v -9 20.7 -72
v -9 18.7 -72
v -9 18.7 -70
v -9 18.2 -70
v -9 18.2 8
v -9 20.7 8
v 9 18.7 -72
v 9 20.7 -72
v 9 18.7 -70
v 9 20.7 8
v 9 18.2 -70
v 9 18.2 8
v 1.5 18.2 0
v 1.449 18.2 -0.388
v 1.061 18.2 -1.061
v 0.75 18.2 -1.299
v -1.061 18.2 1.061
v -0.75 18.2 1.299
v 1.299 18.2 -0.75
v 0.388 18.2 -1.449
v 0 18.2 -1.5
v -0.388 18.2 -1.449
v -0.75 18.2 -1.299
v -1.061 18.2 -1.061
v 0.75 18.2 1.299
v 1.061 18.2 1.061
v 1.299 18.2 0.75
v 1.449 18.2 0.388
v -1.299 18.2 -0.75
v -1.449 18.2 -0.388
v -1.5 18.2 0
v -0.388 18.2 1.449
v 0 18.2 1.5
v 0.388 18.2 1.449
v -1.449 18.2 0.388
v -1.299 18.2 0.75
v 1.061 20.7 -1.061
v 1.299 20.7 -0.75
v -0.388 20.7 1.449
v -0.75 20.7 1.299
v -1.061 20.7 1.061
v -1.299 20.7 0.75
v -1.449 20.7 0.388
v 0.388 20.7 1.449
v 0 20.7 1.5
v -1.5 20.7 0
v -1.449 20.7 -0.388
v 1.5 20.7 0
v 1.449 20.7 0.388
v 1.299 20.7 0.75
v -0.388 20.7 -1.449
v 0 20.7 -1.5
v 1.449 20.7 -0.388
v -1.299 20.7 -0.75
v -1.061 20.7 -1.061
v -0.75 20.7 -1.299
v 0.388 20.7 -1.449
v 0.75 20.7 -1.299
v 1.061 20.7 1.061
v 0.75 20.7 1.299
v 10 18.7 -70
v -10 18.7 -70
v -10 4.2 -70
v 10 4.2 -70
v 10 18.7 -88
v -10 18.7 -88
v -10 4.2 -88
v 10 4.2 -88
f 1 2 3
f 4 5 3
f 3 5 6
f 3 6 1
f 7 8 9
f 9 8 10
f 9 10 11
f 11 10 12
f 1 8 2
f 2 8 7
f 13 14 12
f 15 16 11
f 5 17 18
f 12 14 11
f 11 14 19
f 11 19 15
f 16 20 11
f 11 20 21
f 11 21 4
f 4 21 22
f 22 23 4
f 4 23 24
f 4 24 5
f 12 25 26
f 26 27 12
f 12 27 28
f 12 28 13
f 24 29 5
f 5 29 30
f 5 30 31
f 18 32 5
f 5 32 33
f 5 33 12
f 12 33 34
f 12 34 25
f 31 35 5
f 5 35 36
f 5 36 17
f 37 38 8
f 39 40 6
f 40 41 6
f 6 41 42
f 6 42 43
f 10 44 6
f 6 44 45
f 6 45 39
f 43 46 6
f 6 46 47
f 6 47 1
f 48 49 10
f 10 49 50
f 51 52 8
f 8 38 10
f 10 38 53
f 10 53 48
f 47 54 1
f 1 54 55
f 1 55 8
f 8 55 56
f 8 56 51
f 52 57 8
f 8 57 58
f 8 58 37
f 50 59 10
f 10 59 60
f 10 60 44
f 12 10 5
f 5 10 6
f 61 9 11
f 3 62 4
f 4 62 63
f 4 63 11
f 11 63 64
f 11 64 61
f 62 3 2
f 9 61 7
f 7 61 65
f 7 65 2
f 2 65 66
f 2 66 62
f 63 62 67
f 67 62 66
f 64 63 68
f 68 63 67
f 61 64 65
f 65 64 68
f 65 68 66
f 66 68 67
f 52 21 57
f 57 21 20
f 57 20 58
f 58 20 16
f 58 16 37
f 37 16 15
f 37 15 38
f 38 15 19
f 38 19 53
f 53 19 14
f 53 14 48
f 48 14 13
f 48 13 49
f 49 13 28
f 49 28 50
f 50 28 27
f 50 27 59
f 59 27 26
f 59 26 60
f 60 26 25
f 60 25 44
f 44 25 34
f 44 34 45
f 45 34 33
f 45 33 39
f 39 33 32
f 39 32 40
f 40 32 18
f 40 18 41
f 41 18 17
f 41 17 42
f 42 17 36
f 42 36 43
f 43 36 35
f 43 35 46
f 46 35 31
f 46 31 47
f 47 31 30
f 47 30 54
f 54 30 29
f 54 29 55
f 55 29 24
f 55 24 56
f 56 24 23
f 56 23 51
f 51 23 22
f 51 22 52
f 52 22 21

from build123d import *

# Parameters (mm, degrees)
S_BOX1_W     = 18
S_BOX1_H     = 2.5
BOSS_1_DEPTH = 80
S_BOX2_W     = 20
S_BOX2_H     = 14.5
BOSS_2_DEPTH = 18
S_HOLE3_R    = 1.5
HOLE_3_DEPTH = 2.7


with BuildPart() as part:
    # S_box1 → Boss_1 (new body)
    with BuildSketch(Plane.XY.offset(-72)):
        with Locations((0, 19.45)):
            Rectangle(S_BOX1_W, S_BOX1_H)
    extrude(amount=BOSS_1_DEPTH)

    # S_box2 → Boss_2 (add)
    with BuildSketch(Plane.XY.offset(-88)):
        with Locations((0, 11.45)):
            Rectangle(S_BOX2_W, S_BOX2_H)
    extrude(amount=BOSS_2_DEPTH)

    # S_hole3 → Hole_3 (cut)
    with BuildSketch(Plane(origin=(0, 18.1, 0), x_dir=(1, 0, 0), z_dir=(0, 1, 0))):
        with Locations(Location((0, 0, 0), (0, 0, 90))):
            Circle(S_HOLE3_R)
    extrude(amount=HOLE_3_DEPTH, mode=Mode.SUBTRACT)


solid = part.part
